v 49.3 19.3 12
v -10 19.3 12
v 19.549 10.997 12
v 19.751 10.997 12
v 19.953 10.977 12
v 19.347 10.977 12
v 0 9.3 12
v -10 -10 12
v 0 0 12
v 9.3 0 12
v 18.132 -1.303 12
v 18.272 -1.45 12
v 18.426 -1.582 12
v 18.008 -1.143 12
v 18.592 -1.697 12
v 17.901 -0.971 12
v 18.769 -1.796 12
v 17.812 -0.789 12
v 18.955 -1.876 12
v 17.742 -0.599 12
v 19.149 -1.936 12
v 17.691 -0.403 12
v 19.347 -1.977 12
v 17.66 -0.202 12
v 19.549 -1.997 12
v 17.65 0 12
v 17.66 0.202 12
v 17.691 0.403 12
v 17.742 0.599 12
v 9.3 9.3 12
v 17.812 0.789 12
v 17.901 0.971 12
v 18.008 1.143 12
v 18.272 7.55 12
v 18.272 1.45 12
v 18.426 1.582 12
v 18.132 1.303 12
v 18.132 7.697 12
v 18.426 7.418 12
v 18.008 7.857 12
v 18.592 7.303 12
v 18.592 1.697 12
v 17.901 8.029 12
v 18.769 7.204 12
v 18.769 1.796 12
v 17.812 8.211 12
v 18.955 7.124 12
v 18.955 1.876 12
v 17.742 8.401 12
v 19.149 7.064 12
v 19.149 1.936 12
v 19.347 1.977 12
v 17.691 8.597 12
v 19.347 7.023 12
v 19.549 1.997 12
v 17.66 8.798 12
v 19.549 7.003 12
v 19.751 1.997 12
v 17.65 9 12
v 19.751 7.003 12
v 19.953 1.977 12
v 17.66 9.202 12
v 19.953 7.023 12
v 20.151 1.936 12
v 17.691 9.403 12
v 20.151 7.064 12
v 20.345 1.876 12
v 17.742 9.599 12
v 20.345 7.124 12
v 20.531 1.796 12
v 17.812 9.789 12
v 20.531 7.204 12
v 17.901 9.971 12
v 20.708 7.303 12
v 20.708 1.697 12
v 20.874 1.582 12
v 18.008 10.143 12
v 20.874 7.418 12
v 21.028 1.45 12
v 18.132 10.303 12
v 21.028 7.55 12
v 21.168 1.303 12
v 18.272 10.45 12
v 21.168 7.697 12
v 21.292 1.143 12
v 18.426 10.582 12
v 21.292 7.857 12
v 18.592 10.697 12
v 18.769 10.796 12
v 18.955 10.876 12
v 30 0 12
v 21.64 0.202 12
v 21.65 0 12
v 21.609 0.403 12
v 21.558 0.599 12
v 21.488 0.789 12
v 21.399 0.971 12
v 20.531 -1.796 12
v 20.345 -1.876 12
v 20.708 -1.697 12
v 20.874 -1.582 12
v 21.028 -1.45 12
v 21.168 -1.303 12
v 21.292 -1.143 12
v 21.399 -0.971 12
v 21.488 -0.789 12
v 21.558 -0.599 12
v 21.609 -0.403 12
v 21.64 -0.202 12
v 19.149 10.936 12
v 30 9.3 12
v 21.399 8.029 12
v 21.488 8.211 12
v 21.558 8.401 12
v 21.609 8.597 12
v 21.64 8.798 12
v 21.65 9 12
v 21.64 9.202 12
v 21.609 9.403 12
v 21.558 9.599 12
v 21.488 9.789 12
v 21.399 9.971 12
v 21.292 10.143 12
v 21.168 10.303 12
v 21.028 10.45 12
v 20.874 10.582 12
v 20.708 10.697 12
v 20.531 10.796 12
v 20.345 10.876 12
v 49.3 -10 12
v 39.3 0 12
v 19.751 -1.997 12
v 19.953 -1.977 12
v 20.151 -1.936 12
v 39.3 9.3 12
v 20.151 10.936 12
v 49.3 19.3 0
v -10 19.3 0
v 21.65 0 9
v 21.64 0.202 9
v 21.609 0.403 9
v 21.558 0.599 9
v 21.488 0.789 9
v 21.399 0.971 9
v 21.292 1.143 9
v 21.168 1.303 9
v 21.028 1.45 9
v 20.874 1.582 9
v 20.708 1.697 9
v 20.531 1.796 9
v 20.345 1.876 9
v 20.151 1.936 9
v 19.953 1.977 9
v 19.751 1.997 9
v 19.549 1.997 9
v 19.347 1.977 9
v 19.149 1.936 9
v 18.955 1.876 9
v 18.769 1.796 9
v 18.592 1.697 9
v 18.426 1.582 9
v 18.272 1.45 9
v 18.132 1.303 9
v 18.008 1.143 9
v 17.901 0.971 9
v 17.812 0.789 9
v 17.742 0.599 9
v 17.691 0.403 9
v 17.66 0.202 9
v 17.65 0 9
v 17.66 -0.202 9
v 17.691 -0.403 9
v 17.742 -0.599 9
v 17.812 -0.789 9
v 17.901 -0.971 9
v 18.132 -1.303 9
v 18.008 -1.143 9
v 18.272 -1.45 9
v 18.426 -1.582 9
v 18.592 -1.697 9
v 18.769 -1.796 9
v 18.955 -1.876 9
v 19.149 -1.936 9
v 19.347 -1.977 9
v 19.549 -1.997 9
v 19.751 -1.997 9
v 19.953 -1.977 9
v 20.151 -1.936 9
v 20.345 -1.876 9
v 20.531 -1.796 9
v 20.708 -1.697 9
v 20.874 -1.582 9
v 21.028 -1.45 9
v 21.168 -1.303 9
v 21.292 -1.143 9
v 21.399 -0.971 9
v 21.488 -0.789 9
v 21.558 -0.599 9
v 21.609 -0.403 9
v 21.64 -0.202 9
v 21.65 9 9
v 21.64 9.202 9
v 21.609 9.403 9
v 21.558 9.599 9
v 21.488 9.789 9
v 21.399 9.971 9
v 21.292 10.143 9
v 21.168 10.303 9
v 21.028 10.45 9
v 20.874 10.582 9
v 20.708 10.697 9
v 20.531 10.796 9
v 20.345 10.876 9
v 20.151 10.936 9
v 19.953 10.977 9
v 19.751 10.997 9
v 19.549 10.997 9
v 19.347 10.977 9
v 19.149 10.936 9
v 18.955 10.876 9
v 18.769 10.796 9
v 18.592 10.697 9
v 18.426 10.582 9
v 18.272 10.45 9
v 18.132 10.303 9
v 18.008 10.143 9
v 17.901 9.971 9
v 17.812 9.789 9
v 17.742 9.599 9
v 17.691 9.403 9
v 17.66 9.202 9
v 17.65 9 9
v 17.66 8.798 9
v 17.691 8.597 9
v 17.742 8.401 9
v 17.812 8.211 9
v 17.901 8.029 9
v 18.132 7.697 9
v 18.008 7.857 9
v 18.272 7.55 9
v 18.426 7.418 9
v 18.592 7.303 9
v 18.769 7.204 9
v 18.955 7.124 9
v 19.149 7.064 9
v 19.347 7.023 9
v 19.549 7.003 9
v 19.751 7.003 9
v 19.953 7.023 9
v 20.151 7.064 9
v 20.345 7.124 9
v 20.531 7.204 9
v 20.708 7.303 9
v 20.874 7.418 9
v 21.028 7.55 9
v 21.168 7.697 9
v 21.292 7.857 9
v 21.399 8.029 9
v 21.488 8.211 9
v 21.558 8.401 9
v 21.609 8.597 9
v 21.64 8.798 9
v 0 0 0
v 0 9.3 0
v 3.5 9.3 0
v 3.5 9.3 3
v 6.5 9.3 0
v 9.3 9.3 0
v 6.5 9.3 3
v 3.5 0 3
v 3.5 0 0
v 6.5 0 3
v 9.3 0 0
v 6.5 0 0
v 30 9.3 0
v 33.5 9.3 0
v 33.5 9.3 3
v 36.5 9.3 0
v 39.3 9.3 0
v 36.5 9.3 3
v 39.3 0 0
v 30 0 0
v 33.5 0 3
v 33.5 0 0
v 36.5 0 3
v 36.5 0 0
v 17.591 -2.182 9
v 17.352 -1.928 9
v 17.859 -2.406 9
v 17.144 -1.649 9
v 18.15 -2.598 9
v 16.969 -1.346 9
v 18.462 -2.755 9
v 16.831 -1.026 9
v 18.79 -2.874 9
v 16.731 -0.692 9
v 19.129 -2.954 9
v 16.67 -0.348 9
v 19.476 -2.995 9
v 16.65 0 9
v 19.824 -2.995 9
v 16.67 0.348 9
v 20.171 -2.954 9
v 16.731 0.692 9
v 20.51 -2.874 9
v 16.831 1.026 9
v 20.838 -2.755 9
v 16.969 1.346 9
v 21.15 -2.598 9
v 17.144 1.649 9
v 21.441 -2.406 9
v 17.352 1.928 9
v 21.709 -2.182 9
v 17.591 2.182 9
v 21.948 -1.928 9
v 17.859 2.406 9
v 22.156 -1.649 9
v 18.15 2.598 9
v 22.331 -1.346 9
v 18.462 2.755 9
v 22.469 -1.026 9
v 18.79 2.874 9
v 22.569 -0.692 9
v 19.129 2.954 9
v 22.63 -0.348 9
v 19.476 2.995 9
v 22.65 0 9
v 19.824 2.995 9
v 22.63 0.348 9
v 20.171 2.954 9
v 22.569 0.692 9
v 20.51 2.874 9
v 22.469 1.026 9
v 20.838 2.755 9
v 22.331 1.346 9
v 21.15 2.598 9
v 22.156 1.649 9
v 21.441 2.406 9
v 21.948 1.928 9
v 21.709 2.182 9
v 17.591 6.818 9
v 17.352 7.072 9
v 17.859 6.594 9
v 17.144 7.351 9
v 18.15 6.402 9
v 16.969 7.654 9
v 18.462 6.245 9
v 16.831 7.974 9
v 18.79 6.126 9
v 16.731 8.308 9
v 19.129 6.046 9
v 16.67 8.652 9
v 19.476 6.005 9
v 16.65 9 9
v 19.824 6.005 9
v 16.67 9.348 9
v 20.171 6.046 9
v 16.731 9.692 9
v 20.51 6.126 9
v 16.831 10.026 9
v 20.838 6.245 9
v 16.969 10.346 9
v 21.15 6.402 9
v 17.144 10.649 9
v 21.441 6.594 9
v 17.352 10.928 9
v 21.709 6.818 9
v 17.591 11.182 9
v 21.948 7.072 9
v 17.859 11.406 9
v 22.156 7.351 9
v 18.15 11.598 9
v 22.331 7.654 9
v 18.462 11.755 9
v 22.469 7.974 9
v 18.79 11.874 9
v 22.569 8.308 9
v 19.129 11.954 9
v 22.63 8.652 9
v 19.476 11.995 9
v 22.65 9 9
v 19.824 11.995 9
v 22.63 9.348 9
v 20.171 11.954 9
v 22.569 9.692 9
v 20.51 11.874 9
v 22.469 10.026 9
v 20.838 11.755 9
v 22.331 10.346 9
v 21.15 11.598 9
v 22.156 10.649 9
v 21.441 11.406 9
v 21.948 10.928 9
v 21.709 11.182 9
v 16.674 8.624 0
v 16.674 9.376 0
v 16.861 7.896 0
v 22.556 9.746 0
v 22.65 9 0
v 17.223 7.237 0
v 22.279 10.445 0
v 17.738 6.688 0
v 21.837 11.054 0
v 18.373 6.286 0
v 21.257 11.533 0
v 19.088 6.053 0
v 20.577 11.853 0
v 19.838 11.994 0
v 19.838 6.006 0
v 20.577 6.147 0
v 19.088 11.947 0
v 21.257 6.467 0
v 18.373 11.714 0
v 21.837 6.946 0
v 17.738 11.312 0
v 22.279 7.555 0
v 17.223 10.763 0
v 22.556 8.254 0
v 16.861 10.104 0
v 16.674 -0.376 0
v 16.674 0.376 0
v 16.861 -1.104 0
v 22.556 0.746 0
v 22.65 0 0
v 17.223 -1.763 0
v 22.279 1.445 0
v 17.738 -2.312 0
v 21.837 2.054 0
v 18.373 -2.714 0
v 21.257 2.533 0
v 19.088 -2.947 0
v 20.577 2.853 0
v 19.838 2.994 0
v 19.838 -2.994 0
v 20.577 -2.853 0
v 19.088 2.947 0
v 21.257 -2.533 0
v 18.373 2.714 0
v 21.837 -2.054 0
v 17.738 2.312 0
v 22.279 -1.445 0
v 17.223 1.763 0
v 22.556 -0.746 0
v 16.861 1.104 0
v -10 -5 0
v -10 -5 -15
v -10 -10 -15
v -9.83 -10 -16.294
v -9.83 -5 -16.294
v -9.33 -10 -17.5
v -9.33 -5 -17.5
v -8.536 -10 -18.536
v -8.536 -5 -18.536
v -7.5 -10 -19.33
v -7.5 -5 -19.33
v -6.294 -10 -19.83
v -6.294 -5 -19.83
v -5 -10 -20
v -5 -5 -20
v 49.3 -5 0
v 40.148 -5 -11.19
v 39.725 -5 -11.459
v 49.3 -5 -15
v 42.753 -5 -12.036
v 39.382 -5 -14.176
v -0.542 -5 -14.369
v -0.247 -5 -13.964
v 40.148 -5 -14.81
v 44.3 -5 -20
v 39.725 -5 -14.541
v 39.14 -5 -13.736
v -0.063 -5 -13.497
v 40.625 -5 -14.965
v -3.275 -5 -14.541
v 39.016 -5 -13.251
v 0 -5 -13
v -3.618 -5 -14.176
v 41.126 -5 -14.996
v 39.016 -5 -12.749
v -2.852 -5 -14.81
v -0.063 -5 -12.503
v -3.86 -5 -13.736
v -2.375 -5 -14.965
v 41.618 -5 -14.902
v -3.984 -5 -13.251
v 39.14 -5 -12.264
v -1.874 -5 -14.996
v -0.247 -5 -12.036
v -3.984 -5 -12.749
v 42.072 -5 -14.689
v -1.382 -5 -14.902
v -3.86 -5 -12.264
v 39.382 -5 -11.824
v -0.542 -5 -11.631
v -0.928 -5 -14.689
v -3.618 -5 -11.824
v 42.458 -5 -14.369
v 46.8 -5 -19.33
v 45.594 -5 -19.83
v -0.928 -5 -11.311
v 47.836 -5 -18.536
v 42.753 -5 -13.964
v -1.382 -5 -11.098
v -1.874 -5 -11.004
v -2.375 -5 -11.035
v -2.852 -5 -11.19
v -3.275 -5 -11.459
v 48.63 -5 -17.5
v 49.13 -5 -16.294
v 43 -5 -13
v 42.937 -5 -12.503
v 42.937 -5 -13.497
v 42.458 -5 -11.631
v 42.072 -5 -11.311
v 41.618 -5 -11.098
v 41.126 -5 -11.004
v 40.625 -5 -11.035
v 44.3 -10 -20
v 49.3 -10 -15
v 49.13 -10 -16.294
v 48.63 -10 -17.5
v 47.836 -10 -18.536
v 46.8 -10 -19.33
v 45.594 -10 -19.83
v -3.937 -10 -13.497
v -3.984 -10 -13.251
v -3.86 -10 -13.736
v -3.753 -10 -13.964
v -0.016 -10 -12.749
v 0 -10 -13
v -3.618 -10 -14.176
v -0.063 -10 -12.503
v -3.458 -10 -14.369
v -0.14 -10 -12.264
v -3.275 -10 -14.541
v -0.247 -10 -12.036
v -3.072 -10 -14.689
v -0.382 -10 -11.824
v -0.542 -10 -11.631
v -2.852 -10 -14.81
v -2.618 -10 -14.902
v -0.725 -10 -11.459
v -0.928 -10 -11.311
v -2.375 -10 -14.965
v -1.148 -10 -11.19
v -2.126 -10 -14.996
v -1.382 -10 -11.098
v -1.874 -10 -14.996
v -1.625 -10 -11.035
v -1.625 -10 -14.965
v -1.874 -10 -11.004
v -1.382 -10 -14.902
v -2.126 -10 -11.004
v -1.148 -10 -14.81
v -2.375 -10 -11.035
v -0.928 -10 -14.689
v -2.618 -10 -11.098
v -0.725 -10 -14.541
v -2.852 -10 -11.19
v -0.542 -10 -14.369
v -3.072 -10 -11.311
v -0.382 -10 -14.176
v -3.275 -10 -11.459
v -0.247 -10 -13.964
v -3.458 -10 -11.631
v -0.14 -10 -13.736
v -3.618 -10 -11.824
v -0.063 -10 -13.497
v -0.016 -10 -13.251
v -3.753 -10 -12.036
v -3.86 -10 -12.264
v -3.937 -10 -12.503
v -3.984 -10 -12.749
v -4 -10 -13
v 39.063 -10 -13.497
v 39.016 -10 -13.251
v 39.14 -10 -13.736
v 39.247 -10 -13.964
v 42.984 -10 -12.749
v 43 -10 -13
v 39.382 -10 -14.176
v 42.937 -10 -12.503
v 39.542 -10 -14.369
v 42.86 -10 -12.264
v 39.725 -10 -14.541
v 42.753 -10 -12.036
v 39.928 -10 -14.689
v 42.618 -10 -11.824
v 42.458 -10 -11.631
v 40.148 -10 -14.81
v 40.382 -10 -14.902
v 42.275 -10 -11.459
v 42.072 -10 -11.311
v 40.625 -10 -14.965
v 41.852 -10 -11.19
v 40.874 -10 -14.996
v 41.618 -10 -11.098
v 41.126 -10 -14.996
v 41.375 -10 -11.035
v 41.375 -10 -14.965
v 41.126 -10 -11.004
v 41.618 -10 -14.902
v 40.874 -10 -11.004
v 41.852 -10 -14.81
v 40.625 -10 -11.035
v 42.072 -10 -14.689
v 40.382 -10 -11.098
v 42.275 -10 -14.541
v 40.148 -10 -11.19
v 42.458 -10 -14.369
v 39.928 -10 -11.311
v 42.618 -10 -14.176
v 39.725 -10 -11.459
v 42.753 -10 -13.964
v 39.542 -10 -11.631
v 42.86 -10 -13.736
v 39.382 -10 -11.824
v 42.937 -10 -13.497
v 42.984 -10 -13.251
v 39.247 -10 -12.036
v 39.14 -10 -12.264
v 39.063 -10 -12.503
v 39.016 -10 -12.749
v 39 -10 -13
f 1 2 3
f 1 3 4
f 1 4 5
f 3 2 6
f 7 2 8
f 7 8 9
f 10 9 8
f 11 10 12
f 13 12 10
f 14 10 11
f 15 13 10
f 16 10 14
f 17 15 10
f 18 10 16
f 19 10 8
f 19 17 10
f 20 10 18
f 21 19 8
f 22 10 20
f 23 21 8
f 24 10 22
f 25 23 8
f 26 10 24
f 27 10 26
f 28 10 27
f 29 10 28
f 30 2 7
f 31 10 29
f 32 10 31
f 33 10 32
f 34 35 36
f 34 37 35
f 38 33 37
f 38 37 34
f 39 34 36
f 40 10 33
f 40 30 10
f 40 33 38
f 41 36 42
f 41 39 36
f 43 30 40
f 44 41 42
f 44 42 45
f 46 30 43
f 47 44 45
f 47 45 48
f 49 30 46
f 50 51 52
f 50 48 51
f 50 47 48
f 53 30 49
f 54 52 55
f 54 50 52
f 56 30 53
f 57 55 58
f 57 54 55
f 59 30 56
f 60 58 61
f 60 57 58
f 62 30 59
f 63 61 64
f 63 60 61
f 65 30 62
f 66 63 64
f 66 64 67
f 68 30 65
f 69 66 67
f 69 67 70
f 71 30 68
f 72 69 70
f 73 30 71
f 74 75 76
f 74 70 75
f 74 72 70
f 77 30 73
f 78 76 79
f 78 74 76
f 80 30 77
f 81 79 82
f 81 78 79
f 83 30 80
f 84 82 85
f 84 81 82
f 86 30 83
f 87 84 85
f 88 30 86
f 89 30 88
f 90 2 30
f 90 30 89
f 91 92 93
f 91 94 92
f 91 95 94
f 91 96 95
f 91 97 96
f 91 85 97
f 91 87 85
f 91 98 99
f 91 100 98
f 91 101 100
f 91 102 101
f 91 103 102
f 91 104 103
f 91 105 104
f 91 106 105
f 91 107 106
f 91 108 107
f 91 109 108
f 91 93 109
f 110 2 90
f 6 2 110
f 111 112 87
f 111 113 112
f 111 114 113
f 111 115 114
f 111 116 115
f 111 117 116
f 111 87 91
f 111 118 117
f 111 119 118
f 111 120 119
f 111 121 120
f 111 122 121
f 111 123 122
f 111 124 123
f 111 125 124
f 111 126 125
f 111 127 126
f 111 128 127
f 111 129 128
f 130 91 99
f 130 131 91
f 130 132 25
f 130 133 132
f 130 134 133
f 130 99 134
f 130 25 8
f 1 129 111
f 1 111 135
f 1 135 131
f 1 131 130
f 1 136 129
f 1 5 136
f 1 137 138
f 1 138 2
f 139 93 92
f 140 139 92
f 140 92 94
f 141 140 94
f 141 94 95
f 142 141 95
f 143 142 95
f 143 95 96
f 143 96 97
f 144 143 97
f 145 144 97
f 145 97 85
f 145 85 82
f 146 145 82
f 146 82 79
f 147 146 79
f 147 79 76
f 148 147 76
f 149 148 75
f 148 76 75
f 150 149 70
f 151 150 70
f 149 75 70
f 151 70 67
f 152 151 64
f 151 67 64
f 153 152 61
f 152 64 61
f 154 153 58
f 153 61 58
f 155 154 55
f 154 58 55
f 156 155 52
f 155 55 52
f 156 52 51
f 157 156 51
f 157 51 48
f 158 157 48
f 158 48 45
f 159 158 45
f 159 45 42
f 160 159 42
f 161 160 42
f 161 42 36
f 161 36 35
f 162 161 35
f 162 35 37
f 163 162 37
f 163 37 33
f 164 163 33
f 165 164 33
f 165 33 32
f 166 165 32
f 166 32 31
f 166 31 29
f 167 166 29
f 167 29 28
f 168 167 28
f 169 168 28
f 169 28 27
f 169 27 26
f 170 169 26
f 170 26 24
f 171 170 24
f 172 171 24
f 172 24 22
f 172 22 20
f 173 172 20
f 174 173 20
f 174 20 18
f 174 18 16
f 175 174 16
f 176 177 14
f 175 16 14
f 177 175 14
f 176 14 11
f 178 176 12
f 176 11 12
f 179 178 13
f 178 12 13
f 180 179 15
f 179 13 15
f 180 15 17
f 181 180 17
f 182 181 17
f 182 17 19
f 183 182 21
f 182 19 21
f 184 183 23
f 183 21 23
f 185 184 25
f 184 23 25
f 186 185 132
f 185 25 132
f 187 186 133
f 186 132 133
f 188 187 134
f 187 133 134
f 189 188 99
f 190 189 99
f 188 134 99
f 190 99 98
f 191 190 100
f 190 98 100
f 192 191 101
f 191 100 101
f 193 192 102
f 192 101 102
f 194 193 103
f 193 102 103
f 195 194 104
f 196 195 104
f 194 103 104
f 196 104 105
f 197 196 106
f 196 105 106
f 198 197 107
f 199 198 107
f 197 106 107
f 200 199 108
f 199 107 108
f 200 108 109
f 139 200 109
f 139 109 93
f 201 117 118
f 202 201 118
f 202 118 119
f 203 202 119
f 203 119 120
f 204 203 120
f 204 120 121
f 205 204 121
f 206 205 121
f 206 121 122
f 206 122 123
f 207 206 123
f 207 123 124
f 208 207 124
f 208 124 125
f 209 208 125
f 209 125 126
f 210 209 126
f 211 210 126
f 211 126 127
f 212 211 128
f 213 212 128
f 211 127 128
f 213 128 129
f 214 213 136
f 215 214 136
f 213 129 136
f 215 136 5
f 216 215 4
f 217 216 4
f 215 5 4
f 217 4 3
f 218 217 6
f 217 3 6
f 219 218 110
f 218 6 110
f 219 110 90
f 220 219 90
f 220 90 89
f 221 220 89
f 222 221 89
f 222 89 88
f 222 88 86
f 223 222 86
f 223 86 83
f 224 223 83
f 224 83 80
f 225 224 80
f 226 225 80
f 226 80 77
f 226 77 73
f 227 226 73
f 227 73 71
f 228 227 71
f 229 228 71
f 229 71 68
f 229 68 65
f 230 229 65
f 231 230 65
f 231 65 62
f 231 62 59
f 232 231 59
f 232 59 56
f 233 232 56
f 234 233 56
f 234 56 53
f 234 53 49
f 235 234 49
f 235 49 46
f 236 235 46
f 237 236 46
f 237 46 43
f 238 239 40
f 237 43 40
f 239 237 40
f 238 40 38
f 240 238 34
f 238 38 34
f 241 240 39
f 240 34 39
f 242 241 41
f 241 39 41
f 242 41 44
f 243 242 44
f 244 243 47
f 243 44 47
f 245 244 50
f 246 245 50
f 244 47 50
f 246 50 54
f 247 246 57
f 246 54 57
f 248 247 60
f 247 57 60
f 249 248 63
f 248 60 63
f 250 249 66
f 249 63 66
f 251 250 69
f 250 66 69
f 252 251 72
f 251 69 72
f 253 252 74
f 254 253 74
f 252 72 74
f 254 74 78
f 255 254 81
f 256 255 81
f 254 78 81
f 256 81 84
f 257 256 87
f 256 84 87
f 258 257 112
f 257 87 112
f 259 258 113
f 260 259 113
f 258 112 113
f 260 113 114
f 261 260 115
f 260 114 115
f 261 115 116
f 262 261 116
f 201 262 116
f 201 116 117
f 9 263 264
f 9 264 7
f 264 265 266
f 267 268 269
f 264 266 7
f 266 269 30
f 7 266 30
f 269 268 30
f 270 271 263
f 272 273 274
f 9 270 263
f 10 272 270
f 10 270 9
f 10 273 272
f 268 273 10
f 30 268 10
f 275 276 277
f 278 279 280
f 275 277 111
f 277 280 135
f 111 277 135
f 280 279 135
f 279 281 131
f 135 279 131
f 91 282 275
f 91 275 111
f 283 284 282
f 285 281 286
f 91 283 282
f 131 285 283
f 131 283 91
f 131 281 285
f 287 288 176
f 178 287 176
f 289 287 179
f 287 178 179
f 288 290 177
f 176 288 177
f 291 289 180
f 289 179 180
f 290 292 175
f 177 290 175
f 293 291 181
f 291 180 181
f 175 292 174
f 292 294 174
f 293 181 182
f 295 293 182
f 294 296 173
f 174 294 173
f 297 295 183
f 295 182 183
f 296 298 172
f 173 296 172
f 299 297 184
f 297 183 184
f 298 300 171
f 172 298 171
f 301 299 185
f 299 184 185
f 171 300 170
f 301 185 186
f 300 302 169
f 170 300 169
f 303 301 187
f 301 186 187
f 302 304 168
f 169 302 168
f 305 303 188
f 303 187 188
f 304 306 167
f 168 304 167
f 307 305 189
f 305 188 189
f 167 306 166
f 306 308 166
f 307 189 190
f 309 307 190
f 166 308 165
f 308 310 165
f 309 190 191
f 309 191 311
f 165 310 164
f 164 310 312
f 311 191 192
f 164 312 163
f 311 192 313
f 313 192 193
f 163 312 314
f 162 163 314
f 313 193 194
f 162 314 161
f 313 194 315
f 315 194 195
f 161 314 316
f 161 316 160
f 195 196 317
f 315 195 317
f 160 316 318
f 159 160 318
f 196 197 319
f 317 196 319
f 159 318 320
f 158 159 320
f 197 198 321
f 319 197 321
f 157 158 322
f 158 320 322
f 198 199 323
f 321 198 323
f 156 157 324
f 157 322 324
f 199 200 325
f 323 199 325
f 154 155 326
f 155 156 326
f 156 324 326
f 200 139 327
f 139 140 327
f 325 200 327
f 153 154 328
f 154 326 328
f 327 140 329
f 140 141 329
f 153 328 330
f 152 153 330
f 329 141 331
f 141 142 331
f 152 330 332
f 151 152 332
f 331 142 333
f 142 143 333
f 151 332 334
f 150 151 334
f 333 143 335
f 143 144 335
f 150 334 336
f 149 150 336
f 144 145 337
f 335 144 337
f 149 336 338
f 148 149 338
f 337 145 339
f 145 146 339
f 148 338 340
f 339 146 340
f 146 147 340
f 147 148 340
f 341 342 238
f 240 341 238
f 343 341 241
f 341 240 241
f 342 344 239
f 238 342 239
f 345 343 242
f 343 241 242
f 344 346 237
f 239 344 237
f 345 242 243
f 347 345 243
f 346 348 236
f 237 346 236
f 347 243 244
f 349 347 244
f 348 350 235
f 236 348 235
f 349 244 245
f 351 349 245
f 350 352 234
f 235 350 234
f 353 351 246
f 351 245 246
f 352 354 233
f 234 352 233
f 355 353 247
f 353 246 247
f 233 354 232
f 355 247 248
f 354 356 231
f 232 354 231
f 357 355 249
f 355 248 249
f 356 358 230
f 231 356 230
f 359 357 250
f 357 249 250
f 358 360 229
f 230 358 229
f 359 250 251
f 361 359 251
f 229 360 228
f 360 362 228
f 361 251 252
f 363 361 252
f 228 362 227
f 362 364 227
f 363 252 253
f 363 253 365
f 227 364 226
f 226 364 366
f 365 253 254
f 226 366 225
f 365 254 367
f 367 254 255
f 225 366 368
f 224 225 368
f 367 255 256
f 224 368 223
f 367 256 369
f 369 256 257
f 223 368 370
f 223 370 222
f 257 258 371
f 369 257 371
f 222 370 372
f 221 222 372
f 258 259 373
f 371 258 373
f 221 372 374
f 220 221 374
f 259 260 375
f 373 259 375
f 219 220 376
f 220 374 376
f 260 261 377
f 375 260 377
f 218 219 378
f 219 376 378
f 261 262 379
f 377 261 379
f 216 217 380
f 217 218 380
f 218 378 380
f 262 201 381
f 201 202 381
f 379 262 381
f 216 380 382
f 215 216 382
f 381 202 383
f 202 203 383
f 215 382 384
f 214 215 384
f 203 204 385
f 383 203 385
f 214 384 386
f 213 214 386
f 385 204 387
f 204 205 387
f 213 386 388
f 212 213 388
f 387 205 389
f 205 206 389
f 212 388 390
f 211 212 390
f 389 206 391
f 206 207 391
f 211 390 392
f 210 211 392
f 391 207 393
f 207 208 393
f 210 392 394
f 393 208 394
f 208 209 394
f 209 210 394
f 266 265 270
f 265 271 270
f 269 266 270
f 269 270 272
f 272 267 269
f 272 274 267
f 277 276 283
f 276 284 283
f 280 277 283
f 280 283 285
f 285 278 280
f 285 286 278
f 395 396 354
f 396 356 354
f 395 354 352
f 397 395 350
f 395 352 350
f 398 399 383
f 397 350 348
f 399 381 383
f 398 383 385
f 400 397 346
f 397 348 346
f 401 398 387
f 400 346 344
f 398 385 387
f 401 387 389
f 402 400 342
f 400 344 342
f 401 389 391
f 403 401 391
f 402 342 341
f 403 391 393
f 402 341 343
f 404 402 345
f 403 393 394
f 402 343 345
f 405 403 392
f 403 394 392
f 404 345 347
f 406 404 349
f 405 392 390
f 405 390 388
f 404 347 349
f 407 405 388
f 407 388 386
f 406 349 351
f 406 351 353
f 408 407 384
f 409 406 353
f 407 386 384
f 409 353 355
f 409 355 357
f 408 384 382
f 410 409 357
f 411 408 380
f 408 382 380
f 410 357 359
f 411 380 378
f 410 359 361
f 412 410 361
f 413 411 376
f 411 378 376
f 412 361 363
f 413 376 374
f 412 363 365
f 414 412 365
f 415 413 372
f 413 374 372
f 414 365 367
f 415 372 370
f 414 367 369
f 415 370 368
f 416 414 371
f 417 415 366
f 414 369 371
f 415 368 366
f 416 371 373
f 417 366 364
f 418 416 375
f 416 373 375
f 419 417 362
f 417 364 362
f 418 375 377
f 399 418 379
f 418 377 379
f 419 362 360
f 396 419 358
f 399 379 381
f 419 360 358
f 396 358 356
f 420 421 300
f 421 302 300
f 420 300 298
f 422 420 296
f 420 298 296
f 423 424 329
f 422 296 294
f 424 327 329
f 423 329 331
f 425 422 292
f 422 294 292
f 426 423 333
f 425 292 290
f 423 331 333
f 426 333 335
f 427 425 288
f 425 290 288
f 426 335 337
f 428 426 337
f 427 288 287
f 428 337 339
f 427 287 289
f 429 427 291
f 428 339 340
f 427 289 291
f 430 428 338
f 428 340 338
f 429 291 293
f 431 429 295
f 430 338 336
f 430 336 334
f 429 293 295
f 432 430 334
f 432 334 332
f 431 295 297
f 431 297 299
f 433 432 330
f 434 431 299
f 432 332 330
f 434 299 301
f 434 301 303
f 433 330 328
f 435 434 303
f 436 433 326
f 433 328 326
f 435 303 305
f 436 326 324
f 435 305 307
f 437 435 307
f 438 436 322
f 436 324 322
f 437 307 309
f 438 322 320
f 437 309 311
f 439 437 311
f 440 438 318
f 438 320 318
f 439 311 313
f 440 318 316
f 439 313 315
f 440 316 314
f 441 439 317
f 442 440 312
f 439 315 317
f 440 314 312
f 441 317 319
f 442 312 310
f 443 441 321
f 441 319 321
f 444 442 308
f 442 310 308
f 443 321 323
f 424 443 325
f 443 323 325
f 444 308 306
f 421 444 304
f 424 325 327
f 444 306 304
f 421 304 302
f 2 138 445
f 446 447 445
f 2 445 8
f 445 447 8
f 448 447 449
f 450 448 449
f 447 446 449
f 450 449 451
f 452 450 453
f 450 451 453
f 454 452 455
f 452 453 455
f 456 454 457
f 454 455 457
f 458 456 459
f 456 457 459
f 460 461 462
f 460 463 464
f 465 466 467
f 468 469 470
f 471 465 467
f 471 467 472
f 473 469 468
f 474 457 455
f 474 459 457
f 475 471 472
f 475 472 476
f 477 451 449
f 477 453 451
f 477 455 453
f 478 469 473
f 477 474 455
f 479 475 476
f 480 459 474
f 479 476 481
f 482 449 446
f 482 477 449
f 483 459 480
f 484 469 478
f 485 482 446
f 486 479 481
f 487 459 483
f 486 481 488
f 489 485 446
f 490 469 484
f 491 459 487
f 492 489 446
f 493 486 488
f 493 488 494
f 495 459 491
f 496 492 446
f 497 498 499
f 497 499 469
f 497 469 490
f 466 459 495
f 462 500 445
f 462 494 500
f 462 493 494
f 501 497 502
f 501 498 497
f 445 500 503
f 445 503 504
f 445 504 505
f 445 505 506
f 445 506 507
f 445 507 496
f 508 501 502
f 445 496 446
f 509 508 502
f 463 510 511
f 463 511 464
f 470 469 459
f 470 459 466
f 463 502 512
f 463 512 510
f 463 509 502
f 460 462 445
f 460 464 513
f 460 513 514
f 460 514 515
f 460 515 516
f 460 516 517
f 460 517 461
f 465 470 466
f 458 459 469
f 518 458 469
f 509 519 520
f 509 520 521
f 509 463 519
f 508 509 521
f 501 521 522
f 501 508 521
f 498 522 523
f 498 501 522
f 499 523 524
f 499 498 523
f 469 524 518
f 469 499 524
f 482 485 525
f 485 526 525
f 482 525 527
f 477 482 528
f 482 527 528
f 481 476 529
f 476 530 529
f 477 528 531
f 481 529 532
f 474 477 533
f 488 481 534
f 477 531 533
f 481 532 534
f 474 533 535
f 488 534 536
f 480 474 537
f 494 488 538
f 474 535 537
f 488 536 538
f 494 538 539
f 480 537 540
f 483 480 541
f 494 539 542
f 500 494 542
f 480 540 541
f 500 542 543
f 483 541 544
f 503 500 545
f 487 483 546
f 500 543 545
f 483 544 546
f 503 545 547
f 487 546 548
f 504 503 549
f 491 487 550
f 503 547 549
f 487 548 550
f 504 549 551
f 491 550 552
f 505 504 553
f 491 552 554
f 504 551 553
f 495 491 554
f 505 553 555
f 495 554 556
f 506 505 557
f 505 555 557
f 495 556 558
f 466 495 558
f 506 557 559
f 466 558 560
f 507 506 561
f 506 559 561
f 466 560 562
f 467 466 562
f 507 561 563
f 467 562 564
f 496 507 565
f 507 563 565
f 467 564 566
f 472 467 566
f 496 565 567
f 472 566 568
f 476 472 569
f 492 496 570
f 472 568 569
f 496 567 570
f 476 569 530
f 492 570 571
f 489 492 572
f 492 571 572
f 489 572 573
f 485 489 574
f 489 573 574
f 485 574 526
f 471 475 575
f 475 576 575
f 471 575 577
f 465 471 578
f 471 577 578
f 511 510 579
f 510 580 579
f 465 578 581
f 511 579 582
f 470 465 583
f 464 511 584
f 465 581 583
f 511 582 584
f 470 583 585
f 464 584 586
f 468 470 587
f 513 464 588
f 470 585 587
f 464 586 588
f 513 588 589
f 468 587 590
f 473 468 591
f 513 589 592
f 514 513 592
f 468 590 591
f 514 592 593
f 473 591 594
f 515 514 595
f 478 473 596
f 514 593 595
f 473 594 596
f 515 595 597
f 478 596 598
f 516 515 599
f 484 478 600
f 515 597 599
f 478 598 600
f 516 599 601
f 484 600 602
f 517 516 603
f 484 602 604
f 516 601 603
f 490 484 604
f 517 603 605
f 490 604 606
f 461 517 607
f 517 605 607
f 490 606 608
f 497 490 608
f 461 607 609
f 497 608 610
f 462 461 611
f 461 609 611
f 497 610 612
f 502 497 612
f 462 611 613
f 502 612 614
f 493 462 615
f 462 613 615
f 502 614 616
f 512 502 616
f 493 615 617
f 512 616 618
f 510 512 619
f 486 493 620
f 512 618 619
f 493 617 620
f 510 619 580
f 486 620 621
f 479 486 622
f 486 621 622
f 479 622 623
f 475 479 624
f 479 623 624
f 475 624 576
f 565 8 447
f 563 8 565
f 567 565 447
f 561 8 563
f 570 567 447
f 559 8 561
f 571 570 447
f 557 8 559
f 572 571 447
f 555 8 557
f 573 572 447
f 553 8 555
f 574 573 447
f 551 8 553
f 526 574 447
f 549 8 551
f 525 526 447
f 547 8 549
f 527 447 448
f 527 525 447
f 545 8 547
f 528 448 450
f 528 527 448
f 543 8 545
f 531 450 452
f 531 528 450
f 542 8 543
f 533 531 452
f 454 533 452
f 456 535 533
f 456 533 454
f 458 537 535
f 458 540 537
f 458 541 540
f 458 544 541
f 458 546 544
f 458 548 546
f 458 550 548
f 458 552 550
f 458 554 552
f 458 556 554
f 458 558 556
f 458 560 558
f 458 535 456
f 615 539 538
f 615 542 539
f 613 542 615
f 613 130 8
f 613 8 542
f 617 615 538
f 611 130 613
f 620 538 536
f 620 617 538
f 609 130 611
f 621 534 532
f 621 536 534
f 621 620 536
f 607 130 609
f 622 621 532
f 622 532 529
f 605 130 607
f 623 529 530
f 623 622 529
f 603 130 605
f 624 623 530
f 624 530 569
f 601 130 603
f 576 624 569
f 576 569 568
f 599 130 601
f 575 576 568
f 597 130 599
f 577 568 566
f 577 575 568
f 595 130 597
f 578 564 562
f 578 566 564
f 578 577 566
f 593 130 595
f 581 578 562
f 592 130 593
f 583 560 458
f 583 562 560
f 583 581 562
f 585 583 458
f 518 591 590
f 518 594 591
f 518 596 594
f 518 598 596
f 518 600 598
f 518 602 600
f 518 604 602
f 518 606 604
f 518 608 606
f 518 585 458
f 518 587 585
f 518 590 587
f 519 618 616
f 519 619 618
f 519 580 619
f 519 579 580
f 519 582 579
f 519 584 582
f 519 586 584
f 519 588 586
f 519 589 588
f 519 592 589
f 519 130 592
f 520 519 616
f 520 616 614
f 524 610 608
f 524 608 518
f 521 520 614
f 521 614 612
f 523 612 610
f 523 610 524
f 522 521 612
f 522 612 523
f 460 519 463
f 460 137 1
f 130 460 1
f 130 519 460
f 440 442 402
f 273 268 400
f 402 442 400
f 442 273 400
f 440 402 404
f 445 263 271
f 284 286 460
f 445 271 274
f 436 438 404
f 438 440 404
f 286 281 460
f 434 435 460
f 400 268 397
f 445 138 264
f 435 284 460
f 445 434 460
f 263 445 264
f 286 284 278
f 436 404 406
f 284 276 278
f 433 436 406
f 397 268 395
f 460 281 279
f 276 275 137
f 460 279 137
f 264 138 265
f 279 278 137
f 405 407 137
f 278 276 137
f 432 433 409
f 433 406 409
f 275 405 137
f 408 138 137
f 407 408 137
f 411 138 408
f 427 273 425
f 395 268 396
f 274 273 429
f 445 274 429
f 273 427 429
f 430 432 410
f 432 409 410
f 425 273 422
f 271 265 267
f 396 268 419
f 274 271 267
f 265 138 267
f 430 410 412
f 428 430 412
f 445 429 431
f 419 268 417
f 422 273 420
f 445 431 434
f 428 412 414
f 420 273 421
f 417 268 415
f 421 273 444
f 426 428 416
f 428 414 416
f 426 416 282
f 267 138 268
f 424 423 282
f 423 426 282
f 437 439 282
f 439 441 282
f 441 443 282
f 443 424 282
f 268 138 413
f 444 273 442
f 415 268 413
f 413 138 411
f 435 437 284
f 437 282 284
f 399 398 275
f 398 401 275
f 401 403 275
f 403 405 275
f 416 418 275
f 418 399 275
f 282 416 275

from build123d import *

# Parameters (mm, degrees)
BOX004_W               = 3
BOX004_H               = 10
BOX004_DEPTH           = 3
CYLINDER005_R          = 2
CYLINDER005_DEPTH      = 3
CYLINDER001_R          = 3
CYLINDER001_DEPTH      = 10
CYLINDER006_R          = 2
CYLINDER006_DEPTH      = 3
CYLINDER004_R          = 3
CYLINDER004_DEPTH      = 10
BOX_W                  = 9.3
BOX_H                  = 9.3
BOX_DEPTH              = 12
BOX005_W               = 9.3
BOX005_H               = 9.3
BOX005_DEPTH           = 12
BOX003_W               = 59.3
BOX003_H               = 29.3
BOX003_DEPTH           = 12
CYLINDER002_R          = 2
CYLINDER002_DEPTH      = 10
CYLINDER002_ROLL_ANGLE = 90
CYLINDER003_R          = 2
CYLINDER003_DEPTH      = 10
CYLINDER003_ROLL_ANGLE = 90
BOX006_W               = 59.3
BOX006_H               = 5
BOX006_DEPTH           = 20
FILLET_R               = 5
BOX001_W               = 3
BOX001_H               = 10
BOX001_DEPTH           = 3


with BuildPart() as cube004:
    # Box004 → Box004 (new body)
    with BuildSketch(Plane(origin=(33.5, 0, 0), x_dir=(1, 0, 0), z_dir=(0, 0, 1))):
        with Locations((1.5, 5)):
            Rectangle(BOX004_W, BOX004_H)
    extrude(amount=BOX004_DEPTH)


with BuildPart() as cylinder005:
    # Cylinder005 → Cylinder005 (new body)
    with BuildSketch(Plane(origin=(19.65, 9, 5), x_dir=(1, 0, 0), z_dir=(0, 0, 1))):
        Circle(CYLINDER005_R)
    extrude(amount=CYLINDER005_DEPTH)


with BuildPart() as cylinder001:
    # Cylinder001 → Cylinder001 (new body)
    with BuildSketch(Plane(origin=(19.65, 9, -5), x_dir=(1, 0, 0), z_dir=(0, 0, 1))):
        Circle(CYLINDER001_R)
    extrude(amount=CYLINDER001_DEPTH)


with BuildPart() as cylinder006:
    # Cylinder006 → Cylinder006 (new body)
    with BuildSketch(Plane(origin=(19.65, 0, 5), x_dir=(1, 0, 0), z_dir=(0, 0, 1))):
        Circle(CYLINDER006_R)
    extrude(amount=CYLINDER006_DEPTH)


with BuildPart() as fusion003:
    # Cylinder004 → Cylinder004 (new body)
    with BuildSketch(Plane(origin=(19.65, 0, -5), x_dir=(1, 0, 0), z_dir=(0, 0, 1))):
        Circle(CYLINDER004_R)
    extrude(amount=CYLINDER004_DEPTH)

    # Fusion003: union Cylinder005, Cylinder001, Cylinder006
    add(cylinder005.part)
    add(cylinder001.part)
    add(cylinder006.part)


with BuildPart() as fusion003_1:
    # Fusion003 placement: moved
    add(fusion003.part.moved(Location((0, 0, 4))))


with BuildPart() as cube:
    # Box → Box (new body)
    with BuildSketch(Plane(origin=(30, 0, 0), x_dir=(1, 0, 0), z_dir=(0, 0, 1))):
        with Locations((4.65, 4.65)):
            Rectangle(BOX_W, BOX_H)
    extrude(amount=BOX_DEPTH)


with BuildPart() as fusion:
    # Box005 → Box005 (new body)
    with BuildSketch(Plane.XY):
        with Locations((4.65, 4.65)):
            Rectangle(BOX005_W, BOX005_H)
    extrude(amount=BOX005_DEPTH)

    # Fusion: union Cube
    add(cube.part)


with BuildPart() as cut001:
    # Box003 → Box003 (new body)
    with BuildSketch(Plane(origin=(-10, -10, 0), x_dir=(1, 0, 0), z_dir=(0, 0, 1))):
        with Locations((29.65, 14.65)):
            Rectangle(BOX003_W, BOX003_H)
    extrude(amount=BOX003_DEPTH)

    # Cut: cut Fusion
    add(fusion.part, mode=Mode.SUBTRACT)

    # Cut001: cut Fusion003
    add(fusion003_1.part, mode=Mode.SUBTRACT)


with BuildPart() as cylinder002:
    # Cylinder002 → Cylinder002 (new body)
    with BuildSketch(Plane.XY):
        Circle(CYLINDER002_R)
    extrude(amount=CYLINDER002_DEPTH)


with BuildPart() as cylinder002_1:
    # Cylinder002 roll: moved
    add(cylinder002.part.rotate(Axis((0, 0, 0), (1, 0, 0)), CYLINDER002_ROLL_ANGLE))


with BuildPart() as cylinder002_2:
    # Cylinder002 placement: moved
    add(cylinder002_1.part.moved(Location((-2, 0, -13))))


with BuildPart() as fusion002:
    # Cylinder003 → Cylinder003 (new body)
    with BuildSketch(Plane.XY):
        Circle(CYLINDER003_R)
    extrude(amount=CYLINDER003_DEPTH)


with BuildPart() as fusion002_1:
    # Cylinder003 roll: moved
    add(fusion002.part.rotate(Axis((0, 0, 0), (1, 0, 0)), CYLINDER003_ROLL_ANGLE))


with BuildPart() as fusion002_2:
    # Cylinder003 placement: moved
    add(fusion002_1.part.moved(Location((41, 0, -13))))

    # Fusion002: union Cylinder002
    add(cylinder002_2.part)


with BuildPart() as cut002:
    # Box006 → Box006 (new body)
    with BuildSketch(Plane(origin=(-10, -10, -20), x_dir=(1, 0, 0), z_dir=(0, 0, 1))):
        with Locations((29.65, 2.5)):
            Rectangle(BOX006_W, BOX006_H)
    extrude(amount=BOX006_DEPTH)

    # Fillet
    fillet_edges = [cut002.edges().sort_by_distance(p)[0] for p in [
        (-10, -7.5, -20),
        (49.3, -7.5, -20),
    ]]
    fillet(fillet_edges, radius=FILLET_R)

    # Cut002: cut Fusion002
    add(fusion002_2.part, mode=Mode.SUBTRACT)


with BuildPart() as fusion004:
    # Box001 → Box001 (new body)
    with BuildSketch(Plane(origin=(3.5, 0, 0), x_dir=(1, 0, 0), z_dir=(0, 0, 1))):
        with Locations((1.5, 5)):
            Rectangle(BOX001_W, BOX001_H)
    extrude(amount=BOX001_DEPTH)

    # Fusion004: union Cube004, Cut001, Cut002
    add(cube004.part)
    add(cut001.part)
    add(cut002.part)


solid = fusion004.part
